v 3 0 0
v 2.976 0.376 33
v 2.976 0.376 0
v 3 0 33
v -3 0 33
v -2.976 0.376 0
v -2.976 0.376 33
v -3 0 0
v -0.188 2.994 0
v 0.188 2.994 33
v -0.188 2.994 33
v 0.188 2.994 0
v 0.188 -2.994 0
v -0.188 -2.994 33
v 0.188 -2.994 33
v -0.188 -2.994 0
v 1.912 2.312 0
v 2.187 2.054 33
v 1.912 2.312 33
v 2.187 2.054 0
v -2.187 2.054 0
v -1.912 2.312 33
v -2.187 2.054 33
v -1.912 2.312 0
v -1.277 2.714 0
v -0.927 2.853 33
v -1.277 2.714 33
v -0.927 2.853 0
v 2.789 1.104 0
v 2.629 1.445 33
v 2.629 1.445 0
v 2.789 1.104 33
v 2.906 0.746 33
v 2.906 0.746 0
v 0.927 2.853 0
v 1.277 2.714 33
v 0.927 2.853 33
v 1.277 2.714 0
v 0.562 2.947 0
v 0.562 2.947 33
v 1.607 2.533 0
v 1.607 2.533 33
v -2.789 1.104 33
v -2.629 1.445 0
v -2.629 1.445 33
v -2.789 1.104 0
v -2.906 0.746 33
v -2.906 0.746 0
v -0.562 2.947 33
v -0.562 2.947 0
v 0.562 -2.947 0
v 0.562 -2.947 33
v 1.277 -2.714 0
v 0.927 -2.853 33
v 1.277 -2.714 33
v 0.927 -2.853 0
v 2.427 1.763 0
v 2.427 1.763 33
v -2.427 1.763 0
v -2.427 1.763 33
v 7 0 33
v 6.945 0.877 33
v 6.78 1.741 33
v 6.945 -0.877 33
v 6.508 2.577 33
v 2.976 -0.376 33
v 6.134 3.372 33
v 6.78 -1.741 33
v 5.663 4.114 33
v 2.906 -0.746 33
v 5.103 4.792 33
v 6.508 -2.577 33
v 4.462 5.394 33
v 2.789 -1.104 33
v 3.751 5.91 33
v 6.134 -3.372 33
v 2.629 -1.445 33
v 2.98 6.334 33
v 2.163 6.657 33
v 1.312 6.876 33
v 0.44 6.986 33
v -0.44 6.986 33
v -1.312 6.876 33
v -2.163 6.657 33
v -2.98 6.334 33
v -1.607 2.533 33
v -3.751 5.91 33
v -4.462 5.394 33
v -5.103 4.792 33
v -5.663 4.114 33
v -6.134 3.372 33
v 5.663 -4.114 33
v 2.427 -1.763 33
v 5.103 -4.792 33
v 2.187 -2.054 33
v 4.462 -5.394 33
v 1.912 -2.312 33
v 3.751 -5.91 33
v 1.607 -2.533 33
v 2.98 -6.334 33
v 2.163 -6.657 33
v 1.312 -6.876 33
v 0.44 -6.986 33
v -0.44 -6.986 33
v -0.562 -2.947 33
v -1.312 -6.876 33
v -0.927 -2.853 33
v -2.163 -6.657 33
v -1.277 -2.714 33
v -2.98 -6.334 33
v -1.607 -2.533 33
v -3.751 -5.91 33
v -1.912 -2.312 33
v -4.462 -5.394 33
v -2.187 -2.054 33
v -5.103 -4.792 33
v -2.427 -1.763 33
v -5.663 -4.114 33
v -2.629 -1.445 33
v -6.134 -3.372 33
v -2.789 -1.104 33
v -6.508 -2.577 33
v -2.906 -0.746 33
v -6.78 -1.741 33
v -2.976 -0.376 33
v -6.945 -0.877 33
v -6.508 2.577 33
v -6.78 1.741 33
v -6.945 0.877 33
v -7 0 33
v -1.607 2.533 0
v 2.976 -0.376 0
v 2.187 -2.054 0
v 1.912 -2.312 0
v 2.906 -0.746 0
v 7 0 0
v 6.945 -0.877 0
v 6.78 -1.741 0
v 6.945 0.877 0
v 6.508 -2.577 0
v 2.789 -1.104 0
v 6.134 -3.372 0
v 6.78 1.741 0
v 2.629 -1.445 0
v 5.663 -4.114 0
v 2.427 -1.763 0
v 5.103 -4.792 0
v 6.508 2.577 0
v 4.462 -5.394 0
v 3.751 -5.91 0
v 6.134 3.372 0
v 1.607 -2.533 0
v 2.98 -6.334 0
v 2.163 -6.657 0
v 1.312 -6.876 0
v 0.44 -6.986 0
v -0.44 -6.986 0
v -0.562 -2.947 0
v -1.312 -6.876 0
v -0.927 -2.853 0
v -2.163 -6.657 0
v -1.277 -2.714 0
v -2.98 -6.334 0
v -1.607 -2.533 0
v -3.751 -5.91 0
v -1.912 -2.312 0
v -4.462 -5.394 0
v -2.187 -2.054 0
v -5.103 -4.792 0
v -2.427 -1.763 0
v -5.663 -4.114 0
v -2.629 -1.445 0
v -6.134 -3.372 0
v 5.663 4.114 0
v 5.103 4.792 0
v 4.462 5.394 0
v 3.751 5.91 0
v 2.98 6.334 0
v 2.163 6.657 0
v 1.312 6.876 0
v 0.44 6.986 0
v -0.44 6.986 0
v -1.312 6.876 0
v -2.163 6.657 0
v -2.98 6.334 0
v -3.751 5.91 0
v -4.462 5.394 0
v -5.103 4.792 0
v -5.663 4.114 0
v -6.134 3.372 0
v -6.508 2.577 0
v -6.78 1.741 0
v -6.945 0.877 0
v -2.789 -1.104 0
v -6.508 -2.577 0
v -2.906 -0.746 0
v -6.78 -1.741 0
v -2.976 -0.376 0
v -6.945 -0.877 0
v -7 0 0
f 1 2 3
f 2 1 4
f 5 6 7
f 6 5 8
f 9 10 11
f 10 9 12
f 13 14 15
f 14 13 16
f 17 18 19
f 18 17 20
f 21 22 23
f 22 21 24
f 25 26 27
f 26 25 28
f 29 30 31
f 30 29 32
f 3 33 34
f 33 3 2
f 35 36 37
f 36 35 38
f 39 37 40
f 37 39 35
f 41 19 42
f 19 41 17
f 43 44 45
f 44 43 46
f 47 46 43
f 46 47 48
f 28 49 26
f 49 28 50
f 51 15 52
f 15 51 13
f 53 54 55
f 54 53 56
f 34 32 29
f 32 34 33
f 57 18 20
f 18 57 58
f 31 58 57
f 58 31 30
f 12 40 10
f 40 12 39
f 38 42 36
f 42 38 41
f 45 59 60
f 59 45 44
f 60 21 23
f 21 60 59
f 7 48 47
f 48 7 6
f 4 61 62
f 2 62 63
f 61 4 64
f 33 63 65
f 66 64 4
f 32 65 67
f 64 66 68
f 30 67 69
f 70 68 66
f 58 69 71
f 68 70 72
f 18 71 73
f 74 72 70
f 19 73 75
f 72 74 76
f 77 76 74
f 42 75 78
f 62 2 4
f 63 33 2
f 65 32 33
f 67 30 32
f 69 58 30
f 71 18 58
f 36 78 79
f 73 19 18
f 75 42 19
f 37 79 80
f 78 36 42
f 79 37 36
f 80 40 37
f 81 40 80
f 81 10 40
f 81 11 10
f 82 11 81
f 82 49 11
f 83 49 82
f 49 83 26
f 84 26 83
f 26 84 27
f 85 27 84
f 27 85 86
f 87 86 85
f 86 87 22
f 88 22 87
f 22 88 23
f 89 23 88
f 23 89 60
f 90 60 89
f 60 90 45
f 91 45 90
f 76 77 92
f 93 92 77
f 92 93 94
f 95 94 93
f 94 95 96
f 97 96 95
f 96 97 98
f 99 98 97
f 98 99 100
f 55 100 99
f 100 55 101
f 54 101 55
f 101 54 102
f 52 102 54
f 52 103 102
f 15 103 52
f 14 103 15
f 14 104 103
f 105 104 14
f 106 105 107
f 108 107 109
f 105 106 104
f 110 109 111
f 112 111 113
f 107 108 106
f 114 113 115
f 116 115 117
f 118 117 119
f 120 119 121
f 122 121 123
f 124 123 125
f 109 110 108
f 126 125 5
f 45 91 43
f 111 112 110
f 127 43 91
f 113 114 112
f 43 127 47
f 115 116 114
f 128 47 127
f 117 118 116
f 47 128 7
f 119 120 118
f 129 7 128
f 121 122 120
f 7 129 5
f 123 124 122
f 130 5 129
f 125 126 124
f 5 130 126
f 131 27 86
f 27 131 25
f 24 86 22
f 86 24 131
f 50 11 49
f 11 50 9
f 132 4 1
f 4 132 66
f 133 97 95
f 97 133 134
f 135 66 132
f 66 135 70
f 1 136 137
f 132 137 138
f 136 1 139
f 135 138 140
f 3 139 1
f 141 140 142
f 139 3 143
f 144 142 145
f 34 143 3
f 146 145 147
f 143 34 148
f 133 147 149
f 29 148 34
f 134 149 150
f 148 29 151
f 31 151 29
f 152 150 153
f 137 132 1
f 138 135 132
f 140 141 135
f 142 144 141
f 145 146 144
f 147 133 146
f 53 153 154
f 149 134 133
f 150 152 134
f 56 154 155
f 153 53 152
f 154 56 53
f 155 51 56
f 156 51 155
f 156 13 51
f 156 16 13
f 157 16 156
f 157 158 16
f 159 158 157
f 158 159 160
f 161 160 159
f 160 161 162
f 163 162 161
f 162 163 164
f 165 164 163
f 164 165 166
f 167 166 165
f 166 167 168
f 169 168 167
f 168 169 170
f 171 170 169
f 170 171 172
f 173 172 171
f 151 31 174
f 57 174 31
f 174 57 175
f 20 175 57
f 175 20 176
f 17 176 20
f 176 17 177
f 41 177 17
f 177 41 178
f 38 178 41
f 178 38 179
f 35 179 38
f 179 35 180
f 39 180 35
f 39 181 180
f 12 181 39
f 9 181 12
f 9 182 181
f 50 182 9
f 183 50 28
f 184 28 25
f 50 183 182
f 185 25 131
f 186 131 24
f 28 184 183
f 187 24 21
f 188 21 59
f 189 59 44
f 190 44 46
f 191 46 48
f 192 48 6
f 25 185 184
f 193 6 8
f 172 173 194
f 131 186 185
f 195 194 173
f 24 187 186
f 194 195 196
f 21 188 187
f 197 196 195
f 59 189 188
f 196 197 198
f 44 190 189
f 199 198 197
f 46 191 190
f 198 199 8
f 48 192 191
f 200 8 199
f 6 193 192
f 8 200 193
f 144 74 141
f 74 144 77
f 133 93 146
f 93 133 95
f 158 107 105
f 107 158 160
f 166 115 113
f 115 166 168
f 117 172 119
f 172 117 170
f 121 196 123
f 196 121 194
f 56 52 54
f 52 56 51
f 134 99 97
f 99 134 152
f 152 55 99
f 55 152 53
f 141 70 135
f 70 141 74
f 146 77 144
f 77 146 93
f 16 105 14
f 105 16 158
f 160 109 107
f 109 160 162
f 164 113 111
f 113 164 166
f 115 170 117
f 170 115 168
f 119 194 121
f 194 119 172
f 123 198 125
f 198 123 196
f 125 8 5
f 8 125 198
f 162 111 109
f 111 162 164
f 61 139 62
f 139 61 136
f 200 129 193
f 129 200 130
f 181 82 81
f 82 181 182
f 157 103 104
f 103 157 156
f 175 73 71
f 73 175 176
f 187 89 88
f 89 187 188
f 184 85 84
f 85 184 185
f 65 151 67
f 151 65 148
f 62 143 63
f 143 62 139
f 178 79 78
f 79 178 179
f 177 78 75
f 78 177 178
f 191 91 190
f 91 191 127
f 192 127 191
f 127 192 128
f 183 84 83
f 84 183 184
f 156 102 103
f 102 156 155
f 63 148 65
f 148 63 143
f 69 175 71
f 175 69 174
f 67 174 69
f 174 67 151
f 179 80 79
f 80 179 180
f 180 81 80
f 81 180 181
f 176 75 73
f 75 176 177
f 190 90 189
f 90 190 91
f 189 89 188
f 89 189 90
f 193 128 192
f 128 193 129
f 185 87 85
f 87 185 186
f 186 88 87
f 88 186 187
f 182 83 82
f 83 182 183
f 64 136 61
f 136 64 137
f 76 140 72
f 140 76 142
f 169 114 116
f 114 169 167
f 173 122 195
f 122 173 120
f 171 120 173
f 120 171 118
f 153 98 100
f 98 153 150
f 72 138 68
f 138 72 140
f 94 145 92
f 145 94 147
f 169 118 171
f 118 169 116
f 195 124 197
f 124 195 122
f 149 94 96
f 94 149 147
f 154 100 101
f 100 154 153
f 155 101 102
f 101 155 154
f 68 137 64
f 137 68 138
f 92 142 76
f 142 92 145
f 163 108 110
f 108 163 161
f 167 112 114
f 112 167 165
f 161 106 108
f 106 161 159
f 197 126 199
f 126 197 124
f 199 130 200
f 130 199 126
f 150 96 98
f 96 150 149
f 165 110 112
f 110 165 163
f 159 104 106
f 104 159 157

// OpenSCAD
$fn = 50;


difference() {
	union() {
		cylinder(h = 33, r = 7.0000000000);
	}
	union() {
		translate(v = [0, 0, -100]) {
			cylinder(h = 200, r = 3.0000000000);
		}
	}
}
